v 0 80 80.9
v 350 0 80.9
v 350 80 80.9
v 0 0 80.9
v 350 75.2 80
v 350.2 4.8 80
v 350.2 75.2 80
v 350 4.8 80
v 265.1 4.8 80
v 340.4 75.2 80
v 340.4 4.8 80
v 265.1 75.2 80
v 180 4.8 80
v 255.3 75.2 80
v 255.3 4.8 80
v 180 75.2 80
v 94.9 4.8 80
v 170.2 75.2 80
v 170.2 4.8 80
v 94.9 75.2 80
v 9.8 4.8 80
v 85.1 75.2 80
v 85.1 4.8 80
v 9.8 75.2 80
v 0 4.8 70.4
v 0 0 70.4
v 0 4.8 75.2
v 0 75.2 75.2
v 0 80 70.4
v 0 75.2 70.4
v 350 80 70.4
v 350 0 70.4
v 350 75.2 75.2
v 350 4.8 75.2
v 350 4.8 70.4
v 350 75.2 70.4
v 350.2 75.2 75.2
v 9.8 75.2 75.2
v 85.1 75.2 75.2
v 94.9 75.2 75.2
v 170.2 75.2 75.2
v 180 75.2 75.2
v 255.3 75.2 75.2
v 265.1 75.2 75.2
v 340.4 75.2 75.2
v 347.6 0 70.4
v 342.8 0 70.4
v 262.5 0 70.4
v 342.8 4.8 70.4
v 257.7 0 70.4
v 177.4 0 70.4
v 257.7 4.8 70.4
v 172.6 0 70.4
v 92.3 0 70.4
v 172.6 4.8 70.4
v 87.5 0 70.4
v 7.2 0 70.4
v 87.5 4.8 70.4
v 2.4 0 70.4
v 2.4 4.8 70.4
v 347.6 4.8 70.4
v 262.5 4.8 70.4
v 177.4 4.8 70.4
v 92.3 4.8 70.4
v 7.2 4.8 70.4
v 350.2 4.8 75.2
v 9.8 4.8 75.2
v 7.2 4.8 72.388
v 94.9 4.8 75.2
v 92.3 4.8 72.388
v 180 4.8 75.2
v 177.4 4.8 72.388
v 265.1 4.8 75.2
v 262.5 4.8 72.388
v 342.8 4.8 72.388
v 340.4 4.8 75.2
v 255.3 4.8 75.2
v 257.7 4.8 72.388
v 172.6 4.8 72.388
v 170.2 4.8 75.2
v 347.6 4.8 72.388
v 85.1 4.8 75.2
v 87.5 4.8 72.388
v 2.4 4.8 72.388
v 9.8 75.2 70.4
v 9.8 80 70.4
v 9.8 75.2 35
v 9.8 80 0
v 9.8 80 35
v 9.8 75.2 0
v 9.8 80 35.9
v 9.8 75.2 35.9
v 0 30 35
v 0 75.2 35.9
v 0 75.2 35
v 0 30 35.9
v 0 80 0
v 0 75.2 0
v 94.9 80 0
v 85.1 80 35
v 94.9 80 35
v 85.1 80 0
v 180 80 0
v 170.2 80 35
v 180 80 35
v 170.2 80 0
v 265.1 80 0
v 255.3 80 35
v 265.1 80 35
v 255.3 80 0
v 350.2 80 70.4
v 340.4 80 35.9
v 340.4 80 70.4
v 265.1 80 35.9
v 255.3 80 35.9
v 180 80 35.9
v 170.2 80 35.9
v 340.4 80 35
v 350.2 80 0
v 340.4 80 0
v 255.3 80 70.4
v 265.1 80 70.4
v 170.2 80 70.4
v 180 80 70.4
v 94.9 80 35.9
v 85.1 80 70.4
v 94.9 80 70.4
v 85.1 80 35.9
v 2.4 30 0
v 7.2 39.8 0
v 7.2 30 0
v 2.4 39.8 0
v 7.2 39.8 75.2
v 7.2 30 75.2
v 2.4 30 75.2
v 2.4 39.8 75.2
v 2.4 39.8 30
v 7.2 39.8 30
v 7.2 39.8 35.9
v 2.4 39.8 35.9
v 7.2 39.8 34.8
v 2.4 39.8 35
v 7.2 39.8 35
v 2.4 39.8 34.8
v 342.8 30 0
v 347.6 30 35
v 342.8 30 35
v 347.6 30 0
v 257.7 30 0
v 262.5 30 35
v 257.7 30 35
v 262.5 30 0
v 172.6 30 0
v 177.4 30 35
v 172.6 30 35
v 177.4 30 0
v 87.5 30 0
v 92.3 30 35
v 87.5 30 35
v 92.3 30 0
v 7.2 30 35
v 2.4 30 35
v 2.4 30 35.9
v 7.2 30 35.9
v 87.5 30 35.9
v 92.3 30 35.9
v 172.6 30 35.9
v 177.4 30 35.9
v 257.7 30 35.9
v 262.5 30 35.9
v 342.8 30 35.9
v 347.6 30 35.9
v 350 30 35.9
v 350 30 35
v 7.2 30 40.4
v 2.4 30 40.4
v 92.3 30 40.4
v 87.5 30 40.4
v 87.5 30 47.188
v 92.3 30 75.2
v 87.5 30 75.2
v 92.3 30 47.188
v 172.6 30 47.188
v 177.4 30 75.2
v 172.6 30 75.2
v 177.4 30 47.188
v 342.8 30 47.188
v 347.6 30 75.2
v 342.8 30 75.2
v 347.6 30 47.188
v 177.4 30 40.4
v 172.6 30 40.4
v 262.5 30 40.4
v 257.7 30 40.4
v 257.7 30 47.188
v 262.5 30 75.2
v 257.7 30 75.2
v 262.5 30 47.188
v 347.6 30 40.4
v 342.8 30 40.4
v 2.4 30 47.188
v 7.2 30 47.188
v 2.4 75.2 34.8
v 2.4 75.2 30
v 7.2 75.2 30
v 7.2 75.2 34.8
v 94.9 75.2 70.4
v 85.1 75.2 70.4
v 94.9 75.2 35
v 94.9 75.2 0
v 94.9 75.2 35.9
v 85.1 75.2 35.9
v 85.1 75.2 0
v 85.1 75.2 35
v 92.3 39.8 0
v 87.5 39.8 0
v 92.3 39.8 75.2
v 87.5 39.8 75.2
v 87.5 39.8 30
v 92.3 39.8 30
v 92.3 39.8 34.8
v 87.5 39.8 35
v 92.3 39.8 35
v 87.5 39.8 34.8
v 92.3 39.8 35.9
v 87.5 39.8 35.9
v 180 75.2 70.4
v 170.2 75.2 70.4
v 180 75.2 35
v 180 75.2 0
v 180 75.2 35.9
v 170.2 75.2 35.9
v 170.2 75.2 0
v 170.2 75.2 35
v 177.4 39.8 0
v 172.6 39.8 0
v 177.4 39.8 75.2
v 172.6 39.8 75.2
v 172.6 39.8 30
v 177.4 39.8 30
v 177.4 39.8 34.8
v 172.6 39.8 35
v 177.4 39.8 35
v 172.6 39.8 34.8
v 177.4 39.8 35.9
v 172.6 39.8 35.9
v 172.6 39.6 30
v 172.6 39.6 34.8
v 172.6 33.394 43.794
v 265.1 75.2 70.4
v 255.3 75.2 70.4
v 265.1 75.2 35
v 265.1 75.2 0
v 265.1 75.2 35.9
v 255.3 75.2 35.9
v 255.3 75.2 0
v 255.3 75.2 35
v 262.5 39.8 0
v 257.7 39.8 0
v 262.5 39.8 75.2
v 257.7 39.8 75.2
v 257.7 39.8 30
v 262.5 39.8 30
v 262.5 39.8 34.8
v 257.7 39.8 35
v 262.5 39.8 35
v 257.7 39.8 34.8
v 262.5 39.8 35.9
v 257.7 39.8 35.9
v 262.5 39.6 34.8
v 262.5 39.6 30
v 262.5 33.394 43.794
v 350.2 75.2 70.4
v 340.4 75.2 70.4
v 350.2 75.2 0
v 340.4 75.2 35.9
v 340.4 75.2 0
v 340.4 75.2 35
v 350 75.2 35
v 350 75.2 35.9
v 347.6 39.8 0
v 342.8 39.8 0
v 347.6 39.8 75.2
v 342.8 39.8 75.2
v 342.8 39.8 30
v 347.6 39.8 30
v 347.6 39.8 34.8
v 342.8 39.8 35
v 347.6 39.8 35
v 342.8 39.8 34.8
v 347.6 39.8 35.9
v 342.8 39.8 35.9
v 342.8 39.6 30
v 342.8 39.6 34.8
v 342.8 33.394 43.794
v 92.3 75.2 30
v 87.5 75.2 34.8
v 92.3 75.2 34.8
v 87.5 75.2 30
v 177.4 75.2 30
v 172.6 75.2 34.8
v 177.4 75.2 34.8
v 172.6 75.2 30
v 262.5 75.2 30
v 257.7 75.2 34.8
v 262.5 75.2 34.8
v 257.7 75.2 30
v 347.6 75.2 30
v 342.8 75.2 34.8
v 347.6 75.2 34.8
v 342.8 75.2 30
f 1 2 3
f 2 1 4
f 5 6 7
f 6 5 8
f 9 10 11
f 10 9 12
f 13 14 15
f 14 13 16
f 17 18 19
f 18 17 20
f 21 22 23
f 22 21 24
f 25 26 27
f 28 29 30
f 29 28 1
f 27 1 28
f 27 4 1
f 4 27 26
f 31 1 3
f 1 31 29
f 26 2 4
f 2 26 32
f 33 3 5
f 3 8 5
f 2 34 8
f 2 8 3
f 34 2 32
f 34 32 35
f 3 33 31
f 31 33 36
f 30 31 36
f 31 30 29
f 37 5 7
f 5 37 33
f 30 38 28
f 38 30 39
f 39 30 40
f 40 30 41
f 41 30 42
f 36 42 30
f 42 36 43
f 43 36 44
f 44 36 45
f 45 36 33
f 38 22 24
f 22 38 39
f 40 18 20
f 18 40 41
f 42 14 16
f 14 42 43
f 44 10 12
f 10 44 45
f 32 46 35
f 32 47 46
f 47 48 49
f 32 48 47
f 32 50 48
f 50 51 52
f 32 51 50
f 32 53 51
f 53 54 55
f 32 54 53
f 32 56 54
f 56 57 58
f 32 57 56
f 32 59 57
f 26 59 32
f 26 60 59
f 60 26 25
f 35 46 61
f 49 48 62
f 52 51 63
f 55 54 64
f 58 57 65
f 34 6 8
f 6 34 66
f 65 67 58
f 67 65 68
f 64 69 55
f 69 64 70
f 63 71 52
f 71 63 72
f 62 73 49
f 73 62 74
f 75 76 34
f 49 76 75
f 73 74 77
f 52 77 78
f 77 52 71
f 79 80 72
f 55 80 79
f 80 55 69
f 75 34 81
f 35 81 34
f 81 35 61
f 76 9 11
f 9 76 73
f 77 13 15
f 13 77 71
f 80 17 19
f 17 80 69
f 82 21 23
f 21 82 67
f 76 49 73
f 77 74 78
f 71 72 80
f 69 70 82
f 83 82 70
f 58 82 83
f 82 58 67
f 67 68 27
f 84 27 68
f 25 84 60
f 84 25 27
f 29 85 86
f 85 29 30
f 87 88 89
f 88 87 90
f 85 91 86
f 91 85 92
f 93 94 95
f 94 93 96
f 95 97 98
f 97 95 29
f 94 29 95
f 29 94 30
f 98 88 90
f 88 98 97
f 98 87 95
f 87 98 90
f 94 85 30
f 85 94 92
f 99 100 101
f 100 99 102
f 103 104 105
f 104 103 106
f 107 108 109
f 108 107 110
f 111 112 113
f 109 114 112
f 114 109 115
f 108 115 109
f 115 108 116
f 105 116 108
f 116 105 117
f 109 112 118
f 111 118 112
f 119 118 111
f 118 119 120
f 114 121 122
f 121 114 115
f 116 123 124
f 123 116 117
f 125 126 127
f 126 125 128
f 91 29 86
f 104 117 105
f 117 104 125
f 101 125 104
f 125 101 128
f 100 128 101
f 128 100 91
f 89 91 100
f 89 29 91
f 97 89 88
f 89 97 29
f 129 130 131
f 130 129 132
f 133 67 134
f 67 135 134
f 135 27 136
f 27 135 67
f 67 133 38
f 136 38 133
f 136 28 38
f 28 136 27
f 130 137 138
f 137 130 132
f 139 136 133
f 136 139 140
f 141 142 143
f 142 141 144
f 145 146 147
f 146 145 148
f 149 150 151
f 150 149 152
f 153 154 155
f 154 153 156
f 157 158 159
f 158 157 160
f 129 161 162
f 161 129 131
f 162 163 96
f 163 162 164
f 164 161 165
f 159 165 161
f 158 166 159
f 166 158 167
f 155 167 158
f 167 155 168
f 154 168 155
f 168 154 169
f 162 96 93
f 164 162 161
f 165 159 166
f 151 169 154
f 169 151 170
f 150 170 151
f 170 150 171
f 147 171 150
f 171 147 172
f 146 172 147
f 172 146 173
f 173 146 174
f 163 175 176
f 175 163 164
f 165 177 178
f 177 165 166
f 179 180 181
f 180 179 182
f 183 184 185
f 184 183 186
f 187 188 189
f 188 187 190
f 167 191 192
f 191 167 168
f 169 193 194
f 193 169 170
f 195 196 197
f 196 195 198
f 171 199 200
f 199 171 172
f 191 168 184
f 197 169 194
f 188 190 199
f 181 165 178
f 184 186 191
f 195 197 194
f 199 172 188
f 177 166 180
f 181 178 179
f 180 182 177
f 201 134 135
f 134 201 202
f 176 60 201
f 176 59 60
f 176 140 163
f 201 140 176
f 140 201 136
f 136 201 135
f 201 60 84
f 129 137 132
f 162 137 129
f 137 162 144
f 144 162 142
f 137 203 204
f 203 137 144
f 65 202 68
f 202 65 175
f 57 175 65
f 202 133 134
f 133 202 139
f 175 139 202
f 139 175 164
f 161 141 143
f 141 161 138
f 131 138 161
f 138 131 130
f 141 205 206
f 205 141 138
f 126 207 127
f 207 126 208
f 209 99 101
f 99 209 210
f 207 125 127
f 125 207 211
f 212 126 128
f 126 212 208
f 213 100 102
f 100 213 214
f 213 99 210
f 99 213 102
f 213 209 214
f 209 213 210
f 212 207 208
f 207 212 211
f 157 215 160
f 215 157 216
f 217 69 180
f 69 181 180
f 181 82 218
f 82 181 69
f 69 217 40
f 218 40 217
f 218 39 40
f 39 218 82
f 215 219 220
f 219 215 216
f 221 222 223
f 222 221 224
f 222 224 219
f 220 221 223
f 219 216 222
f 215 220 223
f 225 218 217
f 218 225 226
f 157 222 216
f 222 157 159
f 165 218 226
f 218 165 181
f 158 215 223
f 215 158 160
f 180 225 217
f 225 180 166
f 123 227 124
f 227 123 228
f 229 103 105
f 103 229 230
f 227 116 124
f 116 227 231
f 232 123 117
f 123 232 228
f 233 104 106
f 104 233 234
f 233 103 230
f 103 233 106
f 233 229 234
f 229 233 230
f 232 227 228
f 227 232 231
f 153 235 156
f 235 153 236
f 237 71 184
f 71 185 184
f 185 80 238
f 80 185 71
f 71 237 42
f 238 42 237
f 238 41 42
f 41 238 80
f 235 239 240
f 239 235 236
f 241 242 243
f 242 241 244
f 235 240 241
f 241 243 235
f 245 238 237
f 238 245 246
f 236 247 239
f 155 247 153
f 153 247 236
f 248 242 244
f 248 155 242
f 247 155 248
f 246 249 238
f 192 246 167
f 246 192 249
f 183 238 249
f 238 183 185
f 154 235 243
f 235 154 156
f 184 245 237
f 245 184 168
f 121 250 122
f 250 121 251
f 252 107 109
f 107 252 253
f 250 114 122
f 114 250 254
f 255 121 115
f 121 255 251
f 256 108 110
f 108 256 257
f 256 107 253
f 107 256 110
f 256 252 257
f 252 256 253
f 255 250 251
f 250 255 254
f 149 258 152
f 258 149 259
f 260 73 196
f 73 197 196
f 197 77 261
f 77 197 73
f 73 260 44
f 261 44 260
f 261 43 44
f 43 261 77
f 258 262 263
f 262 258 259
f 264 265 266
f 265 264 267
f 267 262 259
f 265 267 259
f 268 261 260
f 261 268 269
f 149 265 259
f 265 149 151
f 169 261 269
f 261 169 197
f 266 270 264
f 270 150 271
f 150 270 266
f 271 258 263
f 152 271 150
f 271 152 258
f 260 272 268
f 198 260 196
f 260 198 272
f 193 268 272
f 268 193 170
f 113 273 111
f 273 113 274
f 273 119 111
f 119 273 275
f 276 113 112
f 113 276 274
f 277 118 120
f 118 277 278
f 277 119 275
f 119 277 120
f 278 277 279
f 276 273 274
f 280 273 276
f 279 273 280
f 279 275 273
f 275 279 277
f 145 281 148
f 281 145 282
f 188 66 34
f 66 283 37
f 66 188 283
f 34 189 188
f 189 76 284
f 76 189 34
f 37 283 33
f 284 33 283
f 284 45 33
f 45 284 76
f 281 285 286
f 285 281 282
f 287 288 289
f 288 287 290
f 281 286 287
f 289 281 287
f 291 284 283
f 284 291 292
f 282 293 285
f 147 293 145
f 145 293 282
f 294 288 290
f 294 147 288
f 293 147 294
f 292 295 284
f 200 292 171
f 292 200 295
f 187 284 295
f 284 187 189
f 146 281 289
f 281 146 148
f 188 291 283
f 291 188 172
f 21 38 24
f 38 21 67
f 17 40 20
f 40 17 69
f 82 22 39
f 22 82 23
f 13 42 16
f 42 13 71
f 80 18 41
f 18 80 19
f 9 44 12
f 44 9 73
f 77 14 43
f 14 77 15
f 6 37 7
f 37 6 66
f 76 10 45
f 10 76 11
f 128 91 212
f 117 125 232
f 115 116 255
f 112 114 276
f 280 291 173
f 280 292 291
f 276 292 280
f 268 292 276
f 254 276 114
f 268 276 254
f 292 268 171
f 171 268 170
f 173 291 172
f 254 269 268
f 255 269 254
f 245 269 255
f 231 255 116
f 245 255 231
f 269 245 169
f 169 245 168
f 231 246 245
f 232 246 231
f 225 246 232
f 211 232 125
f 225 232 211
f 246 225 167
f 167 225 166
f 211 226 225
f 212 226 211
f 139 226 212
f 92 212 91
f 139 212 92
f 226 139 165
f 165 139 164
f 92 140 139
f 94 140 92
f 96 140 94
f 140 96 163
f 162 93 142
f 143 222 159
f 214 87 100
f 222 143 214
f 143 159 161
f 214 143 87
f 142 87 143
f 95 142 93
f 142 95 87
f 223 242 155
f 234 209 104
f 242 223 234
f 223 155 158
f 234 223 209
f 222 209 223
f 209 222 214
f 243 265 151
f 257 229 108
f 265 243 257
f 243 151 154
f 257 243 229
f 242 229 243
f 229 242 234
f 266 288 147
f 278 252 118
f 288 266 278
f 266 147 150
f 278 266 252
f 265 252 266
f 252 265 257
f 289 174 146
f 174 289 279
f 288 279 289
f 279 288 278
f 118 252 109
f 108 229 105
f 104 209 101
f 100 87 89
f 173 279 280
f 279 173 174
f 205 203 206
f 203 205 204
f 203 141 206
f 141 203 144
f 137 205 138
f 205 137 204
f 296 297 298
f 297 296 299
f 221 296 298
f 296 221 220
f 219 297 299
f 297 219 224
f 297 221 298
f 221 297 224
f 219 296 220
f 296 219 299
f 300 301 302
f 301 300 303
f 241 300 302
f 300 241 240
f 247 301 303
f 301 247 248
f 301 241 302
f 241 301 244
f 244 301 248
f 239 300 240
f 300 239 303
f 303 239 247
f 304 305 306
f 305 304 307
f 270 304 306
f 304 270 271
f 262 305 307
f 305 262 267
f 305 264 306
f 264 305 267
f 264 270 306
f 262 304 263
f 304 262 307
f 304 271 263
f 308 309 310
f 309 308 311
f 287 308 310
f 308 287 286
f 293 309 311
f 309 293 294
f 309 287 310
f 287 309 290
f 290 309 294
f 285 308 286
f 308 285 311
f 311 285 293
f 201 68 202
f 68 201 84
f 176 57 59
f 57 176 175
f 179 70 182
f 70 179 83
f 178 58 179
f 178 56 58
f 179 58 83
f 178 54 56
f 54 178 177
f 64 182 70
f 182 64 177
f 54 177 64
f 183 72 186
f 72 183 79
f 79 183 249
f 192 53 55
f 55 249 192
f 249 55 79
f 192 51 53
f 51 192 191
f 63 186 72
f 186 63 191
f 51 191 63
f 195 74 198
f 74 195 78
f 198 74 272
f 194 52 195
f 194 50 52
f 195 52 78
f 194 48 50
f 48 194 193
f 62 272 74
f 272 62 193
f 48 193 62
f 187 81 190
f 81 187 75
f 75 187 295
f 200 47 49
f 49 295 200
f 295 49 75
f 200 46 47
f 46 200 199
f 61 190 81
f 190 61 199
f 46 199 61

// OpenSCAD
// file: materials.scad
module twobyfour(length=120) {
    echo("2x4: ", length);
    color("BurlyWood")
    cube([length, 4.8, 9.8]);   
}

module twobytwo(length) {
    echo("2x2: ", length);
    color("BurlyWood")
    cube([length, 4.8, 4.8]);   
}

module lekt30x48(length) {
    echo ("30x48: ", length);
    color("Burlywood")
    cube([length, 3.0, 4.8]);
}

module lekt36x48(length) {
    echo ("36x48: ", length);
    color("Burlywood")
    cube([length, 4.8, 4.8]);
}

module lekt48x48(length) {
    echo ("48x48: ", length);
    color("Burlywood")
    cube([length, 4.8, 4.8]);
}

module mdf(thickness, width=122.0, length=244.0) {
    echo ("MDF: ", thickness, min(width, 122.0), min(length, 244.0));
    color("Burlywood");
    cube([min(length, 244.0), min(width, 122.0), thickness]);

}
// main file
use <materials.scad>;

// Worktop
translate([0, 0, 80.0]) {
    mdf(.9, width=80.0, length=350.0  / 2);
    translate([350.0 / 2, 0, 0])
    mdf(.9, width=80.0, length=(350.0 / 2));
}

// Tverrliggere
translate([0, 0, 80 - 9.6]) {
    translate([0, 80. - 4.8, 0])
        twobyfour(350.0);
    twobyfour(350.0);
}

// Ben
for(i=[0:4]) {
translate([i * (350.0 - 9.6) / 4.0, 80, 0])
    rotate([180, -90, 0]) {
        twobyfour(80.0 - 9.6);
        translate([0, 50, 2.40])
        rotate([90, 0, 0])
        twobyfour(80.0 - 4.8);
    }
}

for(i=[0:4]) {
translate([i * (350.0 / 4 - 2.4), 4.8, 80 - 4.8])
    rotate([90, 0, 90])
    twobyfour(80.0 - 9.6);
}

// Shelf
translate([0, 30, 35.0]) {
    mdf(.9, width=50.0, length=350. / 2);
    translate([350.0 / 2, 0, 0])
    mdf(.9, width=50.0, length=(350.0 / 2));
}


for(i=[0:4]) {
translate([2.4 + i * (350.0 / 4 - 2.4), 30 + 9.6, 30])
    rotate([90, 0, 90])
    twobytwo(50 - 9.6 - 4.8);
}


// Støtter
for(i=[0:4]) {
    translate([4.8 + 2.4 + i * (350.0 / 4 - 2.4), 0, 80 - 9.6])
    rotate([45, 0, 0])
    rotate([0, 90, 90])
        twobytwo(sqrt(30 * 30 + 30 * 30));
}
